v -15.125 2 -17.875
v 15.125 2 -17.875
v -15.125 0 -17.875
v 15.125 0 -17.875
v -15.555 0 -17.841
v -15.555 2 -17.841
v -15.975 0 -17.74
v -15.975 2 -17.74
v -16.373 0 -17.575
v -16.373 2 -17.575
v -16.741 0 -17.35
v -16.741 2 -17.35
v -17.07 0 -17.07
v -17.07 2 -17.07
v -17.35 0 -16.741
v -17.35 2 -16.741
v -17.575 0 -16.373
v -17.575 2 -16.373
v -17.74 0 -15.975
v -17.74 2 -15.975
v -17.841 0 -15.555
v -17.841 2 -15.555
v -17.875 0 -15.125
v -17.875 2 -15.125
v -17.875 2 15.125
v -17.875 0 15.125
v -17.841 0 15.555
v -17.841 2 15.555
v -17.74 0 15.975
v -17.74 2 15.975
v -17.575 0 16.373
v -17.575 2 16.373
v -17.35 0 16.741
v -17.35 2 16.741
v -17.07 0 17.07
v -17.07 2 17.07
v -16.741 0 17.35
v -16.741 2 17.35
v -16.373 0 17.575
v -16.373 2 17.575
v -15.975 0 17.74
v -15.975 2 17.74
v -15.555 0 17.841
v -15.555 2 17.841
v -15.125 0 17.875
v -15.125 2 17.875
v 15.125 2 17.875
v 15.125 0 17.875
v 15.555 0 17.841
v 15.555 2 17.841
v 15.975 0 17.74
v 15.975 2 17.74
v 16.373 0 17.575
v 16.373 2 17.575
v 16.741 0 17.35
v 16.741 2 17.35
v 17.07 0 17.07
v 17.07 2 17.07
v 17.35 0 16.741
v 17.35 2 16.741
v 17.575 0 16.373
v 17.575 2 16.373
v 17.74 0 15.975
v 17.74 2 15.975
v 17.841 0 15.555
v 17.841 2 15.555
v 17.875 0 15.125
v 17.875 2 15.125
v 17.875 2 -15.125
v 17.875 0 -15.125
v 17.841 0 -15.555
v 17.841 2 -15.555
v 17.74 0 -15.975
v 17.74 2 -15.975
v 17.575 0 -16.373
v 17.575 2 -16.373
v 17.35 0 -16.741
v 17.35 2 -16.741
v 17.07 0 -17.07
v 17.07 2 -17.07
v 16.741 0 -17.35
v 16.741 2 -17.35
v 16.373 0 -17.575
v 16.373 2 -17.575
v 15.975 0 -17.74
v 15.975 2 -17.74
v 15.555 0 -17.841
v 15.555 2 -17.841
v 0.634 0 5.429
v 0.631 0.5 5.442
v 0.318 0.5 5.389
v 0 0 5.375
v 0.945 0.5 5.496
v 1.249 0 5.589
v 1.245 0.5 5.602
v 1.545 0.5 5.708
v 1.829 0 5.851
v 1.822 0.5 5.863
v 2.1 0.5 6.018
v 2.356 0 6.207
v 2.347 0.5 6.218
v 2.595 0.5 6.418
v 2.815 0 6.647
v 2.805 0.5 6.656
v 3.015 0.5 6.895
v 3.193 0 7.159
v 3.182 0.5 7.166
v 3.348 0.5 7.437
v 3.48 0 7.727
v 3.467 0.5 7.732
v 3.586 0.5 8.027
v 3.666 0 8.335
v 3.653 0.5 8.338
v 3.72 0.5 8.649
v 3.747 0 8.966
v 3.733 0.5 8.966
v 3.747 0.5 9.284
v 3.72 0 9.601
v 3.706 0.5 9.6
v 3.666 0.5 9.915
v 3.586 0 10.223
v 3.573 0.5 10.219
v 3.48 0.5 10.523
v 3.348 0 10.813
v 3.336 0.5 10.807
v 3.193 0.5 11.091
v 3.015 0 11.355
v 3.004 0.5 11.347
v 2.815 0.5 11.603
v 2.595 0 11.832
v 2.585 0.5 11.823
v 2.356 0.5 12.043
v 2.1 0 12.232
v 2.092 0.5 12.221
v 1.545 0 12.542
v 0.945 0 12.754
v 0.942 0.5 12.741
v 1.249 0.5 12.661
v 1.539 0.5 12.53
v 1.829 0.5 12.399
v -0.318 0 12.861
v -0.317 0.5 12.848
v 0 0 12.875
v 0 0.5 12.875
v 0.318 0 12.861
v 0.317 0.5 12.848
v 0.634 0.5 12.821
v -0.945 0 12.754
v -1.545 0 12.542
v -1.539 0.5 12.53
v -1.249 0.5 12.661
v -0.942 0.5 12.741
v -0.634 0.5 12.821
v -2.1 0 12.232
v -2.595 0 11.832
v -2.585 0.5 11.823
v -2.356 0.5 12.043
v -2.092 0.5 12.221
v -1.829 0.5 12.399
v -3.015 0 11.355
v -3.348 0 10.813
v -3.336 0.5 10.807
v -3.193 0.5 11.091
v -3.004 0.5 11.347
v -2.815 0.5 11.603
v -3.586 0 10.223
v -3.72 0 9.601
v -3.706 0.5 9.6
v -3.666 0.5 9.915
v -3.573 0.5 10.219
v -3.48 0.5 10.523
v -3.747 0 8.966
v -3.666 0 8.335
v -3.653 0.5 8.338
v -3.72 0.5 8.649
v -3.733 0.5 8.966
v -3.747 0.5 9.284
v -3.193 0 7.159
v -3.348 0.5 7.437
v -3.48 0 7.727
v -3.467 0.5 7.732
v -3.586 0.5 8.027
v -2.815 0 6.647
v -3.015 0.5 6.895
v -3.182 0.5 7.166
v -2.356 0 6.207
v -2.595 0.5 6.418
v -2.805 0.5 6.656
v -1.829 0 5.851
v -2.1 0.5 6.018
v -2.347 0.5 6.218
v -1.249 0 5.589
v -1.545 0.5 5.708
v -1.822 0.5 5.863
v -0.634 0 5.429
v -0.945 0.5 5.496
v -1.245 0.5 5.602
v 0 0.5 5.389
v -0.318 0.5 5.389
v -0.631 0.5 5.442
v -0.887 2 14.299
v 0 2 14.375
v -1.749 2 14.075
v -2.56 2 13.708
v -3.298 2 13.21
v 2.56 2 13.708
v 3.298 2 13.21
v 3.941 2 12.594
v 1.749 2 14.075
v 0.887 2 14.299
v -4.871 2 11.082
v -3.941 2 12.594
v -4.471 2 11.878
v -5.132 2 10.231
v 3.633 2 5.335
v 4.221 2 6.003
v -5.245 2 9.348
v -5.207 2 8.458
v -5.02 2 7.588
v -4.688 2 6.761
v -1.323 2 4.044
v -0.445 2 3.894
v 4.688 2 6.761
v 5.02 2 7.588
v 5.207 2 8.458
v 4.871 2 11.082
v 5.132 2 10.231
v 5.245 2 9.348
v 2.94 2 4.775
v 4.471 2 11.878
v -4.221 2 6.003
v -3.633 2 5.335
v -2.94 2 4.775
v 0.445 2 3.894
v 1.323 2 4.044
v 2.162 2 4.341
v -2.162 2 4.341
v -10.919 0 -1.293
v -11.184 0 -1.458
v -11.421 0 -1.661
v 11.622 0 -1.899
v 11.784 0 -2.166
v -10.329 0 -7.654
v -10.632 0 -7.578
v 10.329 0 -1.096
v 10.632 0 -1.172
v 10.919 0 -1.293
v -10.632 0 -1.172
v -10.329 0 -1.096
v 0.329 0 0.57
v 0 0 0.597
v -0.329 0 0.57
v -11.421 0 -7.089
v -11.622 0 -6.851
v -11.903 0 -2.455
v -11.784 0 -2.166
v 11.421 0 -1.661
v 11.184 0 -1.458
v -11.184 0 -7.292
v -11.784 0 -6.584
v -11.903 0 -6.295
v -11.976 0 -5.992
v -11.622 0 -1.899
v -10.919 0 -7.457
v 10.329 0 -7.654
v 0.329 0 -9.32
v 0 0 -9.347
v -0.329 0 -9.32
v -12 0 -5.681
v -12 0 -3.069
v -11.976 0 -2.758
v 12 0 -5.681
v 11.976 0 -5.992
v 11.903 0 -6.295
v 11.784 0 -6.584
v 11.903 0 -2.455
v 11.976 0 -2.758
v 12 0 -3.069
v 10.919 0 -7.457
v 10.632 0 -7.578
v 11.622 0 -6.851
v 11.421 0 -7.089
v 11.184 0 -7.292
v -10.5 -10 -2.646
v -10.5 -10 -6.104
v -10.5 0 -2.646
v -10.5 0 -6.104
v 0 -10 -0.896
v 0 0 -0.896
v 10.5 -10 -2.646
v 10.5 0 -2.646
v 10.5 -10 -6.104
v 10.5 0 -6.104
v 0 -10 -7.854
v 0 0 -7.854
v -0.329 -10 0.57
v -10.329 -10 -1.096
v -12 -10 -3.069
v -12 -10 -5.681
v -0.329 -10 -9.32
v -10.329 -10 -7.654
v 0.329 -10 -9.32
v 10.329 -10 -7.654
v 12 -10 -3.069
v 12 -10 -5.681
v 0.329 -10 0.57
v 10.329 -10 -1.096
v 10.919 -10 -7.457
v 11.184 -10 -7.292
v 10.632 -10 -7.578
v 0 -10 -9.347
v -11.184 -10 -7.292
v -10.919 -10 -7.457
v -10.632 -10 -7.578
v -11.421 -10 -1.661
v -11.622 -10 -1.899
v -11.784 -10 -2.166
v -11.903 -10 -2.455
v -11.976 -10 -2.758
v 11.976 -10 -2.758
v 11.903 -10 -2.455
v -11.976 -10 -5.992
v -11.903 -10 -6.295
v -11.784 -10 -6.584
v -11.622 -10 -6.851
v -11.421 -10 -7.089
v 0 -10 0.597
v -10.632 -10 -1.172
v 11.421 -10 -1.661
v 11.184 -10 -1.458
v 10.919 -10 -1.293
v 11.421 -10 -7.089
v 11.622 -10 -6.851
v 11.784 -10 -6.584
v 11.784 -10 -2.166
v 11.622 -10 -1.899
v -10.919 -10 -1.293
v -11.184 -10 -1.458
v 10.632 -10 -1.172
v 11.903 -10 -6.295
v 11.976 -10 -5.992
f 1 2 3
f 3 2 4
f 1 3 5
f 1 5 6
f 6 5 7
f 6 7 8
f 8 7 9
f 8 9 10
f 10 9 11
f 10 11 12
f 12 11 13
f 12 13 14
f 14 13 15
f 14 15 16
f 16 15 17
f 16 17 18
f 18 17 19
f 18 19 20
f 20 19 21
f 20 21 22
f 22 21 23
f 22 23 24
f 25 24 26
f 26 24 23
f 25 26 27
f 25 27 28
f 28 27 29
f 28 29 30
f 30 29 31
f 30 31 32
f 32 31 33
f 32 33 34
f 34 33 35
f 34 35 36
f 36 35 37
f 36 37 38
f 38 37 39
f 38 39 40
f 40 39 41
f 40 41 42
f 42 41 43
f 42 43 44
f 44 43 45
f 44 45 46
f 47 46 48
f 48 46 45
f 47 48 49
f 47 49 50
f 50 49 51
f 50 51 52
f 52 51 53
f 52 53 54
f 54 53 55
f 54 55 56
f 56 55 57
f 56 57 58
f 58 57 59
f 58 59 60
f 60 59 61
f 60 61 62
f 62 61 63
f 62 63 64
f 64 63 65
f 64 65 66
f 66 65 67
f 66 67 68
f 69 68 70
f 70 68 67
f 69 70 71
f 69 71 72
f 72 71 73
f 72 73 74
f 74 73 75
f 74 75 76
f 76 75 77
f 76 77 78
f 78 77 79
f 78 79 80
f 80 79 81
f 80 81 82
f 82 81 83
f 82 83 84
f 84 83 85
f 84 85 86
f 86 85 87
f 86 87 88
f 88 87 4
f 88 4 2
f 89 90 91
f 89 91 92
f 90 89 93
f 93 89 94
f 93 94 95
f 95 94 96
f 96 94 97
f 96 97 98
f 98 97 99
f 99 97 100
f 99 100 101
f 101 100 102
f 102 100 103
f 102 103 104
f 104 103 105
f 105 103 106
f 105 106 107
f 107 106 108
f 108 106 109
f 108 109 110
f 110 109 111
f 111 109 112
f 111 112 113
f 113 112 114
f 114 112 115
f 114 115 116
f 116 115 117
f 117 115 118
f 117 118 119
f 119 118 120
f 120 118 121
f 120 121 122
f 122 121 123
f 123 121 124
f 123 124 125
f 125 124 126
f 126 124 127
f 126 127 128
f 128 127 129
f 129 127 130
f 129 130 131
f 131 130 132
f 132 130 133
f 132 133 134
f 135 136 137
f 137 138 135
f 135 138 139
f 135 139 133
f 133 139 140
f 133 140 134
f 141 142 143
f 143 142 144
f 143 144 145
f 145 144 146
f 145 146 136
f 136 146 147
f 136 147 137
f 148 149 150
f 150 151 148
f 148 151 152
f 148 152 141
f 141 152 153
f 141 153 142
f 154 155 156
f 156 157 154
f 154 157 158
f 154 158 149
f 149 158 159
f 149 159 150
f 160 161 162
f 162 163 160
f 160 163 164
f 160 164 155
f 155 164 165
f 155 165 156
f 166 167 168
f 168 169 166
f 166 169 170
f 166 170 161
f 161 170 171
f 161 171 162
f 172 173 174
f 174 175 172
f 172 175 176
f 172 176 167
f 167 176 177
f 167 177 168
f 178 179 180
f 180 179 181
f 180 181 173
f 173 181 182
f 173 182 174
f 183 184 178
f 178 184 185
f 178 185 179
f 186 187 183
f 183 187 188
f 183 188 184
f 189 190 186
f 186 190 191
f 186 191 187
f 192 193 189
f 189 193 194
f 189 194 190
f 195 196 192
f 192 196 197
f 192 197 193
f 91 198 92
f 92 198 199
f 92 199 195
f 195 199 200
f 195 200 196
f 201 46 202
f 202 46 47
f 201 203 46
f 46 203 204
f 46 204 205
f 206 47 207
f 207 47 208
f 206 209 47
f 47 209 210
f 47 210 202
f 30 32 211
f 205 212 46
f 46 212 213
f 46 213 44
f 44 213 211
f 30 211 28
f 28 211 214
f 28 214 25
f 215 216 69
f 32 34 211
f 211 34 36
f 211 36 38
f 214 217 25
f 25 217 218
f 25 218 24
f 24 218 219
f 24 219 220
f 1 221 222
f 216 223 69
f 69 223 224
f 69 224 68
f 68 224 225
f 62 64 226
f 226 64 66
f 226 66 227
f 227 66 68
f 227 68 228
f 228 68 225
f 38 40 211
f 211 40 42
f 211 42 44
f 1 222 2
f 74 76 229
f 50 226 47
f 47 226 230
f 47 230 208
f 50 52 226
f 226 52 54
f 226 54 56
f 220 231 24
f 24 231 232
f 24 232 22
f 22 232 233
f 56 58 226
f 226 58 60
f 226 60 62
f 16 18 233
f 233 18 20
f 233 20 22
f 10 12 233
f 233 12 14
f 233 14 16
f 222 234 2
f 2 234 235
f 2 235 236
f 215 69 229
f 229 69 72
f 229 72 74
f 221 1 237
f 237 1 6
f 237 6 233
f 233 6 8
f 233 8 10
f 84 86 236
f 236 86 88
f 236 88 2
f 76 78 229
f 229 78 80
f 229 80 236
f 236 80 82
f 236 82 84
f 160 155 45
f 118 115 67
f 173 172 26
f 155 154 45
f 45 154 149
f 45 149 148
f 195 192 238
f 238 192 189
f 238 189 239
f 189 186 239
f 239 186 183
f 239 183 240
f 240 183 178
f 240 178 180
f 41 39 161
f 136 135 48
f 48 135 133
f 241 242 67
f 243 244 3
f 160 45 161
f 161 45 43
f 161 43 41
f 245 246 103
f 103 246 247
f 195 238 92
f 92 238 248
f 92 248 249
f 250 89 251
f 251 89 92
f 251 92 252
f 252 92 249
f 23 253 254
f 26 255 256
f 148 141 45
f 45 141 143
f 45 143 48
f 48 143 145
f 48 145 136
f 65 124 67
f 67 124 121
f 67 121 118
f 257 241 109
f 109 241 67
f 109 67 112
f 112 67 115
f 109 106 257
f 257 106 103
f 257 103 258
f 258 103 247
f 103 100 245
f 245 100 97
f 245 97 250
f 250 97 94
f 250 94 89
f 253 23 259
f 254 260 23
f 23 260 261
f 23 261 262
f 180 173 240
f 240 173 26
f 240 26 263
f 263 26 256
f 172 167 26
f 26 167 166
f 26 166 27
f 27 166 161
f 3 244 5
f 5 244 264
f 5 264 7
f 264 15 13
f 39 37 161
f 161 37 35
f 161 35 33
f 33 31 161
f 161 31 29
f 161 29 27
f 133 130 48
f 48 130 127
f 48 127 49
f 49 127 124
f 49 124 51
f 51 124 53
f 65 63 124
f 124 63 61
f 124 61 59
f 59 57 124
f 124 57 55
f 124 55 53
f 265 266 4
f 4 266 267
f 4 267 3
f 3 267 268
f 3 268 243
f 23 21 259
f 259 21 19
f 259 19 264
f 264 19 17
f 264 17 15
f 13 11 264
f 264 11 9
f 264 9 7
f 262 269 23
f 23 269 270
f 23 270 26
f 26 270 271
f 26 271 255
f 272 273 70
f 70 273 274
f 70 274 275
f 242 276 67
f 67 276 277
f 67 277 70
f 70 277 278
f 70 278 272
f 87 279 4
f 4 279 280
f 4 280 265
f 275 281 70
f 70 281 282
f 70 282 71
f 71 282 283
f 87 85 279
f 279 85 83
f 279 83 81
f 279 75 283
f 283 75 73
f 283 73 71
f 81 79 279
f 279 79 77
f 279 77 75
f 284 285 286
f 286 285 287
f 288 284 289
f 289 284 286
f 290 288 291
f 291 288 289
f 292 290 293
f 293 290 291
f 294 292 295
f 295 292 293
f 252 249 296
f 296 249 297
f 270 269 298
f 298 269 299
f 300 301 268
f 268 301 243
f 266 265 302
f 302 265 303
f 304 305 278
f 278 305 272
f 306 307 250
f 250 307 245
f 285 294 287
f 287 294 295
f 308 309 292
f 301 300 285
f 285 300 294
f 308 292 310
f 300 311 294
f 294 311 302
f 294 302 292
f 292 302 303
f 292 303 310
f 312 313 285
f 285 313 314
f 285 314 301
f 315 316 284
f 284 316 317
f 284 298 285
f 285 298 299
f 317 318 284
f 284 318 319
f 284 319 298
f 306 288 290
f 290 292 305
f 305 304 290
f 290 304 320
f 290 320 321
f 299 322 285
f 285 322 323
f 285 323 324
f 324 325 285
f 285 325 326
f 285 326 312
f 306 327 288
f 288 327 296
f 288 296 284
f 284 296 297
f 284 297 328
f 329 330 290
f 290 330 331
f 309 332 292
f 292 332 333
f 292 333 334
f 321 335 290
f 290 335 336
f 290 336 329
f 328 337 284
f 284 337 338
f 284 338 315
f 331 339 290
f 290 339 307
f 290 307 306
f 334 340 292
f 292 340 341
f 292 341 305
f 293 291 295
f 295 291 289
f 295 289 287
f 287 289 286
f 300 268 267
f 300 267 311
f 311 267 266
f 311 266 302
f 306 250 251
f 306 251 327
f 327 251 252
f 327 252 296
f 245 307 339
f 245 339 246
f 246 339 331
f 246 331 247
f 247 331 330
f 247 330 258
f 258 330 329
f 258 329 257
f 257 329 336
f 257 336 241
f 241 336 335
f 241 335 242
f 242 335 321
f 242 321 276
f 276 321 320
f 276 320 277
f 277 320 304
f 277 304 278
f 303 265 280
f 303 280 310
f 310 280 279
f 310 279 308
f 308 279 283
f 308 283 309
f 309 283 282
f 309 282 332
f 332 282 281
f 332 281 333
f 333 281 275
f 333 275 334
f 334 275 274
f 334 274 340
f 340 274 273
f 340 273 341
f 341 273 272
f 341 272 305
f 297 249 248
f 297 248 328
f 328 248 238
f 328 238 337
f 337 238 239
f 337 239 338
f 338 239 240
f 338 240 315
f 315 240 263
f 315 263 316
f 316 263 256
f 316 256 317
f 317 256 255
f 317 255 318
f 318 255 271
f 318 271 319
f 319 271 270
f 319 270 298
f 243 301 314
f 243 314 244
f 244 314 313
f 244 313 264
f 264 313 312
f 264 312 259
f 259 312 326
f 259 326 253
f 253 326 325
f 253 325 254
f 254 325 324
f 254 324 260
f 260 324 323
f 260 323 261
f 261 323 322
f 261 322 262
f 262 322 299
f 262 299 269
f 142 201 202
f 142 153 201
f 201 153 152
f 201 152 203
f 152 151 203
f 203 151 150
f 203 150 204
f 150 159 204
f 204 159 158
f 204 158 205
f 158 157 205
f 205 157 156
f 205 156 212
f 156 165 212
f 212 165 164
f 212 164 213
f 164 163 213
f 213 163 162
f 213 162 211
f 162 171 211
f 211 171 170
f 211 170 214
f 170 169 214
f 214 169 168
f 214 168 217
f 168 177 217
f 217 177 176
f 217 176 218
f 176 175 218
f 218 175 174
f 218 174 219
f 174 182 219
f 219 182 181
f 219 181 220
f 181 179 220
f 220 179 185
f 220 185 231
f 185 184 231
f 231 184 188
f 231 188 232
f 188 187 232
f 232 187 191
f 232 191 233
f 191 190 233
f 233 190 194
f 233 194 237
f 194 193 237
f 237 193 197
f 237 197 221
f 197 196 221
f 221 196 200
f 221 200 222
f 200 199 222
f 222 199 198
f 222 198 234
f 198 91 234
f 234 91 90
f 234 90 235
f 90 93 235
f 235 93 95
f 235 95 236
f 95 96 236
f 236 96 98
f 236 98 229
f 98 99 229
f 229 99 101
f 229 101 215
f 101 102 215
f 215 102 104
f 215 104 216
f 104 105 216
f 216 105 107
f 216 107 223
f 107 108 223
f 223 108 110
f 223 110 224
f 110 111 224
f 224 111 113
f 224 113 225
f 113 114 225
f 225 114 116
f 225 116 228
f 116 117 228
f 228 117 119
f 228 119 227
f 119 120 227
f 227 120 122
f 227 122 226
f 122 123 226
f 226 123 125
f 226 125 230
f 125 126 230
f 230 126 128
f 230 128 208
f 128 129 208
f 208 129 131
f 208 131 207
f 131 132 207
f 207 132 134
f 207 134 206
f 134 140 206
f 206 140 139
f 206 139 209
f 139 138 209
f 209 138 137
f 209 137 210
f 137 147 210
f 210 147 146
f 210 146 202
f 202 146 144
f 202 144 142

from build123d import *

# Parameters (mm, degrees)
SKIZZE1_R                       = 3.75
AUFSATZ_LINEAR_AUSTRAGEN1_DEPTH = 2
AUFSATZ_LINEAR_AUSTRAGEN2_DEPTH = 10
VERRUNDUNG1_R                   = 2
FASE2_SIZE                      = 1.5


with BuildPart() as part:
    # Skizze1 → Aufsatz-Linear austragen1 (new body)
    with BuildSketch(Plane(origin=(0, 0, 0), x_dir=(1, 0, 0), z_dir=(0, 1, 0))):
        with BuildLine():
            Line((15.125, 17.875), (-15.125, 17.875))
            ThreePointArc((-15.125, 17.875), (-17.069543648, 17.069543648), (-17.875, 15.125))
            Line((-17.875, 15.125), (-17.875, -15.125))
            ThreePointArc((-17.875, -15.125), (-17.069543648, -17.069543648), (-15.125, -17.875))
            Line((-15.125, -17.875), (15.125, -17.875))
            ThreePointArc((15.125, -17.875), (17.069543648, -17.069543648), (17.875, -15.125))
            Line((17.875, -15.125), (17.875, 15.125))
            ThreePointArc((17.875, 15.125), (17.069543648, 17.069543648), (15.125, 17.875))
        make_face()
        with Locations((0, -9.125)):
            Circle(SKIZZE1_R, mode=Mode.SUBTRACT)
    extrude(amount=AUFSATZ_LINEAR_AUSTRAGEN1_DEPTH)

    # Skizze1<6> → Aufsatz-Linear austragen2 (add)
    with BuildSketch(Plane(origin=(0, 0, 0), x_dir=(1, 0, 0), z_dir=(0, 1, 0))):
        Polygon((12, 7.375), (0, 9.375), (-12, 7.375), (-12, 1.375), (0, -0.625), (12, 1.375), align=None)
        Polygon((-10.5, 2.645690633), (-10.5, 6.104309367), (0, 7.854309367), (10.5, 6.104309367), (10.5, 2.645690633), (0, 0.895690633), align=None, mode=Mode.SUBTRACT)
    extrude(amount=-AUFSATZ_LINEAR_AUSTRAGEN2_DEPTH)

    # Verrundung1
    verrundung1_edges = [part.edges().sort_by_distance(p)[0] for p in [
        (0, -5, -9.375),
        (0, -5, 0.625),
        (12, -5, -1.375),
        (12, -5, -7.375),
        (-12, -5, -1.375),
        (-12, -5, -7.375),
    ]]
    fillet(verrundung1_edges, radius=VERRUNDUNG1_R)

    # Fase2
    fase2_edges = [part.edges().sort_by_distance(p)[0] for p in [
        (-3.75, 2, 9.125),
    ]]
    chamfer(fase2_edges, length=FASE2_SIZE)


solid = part.part
